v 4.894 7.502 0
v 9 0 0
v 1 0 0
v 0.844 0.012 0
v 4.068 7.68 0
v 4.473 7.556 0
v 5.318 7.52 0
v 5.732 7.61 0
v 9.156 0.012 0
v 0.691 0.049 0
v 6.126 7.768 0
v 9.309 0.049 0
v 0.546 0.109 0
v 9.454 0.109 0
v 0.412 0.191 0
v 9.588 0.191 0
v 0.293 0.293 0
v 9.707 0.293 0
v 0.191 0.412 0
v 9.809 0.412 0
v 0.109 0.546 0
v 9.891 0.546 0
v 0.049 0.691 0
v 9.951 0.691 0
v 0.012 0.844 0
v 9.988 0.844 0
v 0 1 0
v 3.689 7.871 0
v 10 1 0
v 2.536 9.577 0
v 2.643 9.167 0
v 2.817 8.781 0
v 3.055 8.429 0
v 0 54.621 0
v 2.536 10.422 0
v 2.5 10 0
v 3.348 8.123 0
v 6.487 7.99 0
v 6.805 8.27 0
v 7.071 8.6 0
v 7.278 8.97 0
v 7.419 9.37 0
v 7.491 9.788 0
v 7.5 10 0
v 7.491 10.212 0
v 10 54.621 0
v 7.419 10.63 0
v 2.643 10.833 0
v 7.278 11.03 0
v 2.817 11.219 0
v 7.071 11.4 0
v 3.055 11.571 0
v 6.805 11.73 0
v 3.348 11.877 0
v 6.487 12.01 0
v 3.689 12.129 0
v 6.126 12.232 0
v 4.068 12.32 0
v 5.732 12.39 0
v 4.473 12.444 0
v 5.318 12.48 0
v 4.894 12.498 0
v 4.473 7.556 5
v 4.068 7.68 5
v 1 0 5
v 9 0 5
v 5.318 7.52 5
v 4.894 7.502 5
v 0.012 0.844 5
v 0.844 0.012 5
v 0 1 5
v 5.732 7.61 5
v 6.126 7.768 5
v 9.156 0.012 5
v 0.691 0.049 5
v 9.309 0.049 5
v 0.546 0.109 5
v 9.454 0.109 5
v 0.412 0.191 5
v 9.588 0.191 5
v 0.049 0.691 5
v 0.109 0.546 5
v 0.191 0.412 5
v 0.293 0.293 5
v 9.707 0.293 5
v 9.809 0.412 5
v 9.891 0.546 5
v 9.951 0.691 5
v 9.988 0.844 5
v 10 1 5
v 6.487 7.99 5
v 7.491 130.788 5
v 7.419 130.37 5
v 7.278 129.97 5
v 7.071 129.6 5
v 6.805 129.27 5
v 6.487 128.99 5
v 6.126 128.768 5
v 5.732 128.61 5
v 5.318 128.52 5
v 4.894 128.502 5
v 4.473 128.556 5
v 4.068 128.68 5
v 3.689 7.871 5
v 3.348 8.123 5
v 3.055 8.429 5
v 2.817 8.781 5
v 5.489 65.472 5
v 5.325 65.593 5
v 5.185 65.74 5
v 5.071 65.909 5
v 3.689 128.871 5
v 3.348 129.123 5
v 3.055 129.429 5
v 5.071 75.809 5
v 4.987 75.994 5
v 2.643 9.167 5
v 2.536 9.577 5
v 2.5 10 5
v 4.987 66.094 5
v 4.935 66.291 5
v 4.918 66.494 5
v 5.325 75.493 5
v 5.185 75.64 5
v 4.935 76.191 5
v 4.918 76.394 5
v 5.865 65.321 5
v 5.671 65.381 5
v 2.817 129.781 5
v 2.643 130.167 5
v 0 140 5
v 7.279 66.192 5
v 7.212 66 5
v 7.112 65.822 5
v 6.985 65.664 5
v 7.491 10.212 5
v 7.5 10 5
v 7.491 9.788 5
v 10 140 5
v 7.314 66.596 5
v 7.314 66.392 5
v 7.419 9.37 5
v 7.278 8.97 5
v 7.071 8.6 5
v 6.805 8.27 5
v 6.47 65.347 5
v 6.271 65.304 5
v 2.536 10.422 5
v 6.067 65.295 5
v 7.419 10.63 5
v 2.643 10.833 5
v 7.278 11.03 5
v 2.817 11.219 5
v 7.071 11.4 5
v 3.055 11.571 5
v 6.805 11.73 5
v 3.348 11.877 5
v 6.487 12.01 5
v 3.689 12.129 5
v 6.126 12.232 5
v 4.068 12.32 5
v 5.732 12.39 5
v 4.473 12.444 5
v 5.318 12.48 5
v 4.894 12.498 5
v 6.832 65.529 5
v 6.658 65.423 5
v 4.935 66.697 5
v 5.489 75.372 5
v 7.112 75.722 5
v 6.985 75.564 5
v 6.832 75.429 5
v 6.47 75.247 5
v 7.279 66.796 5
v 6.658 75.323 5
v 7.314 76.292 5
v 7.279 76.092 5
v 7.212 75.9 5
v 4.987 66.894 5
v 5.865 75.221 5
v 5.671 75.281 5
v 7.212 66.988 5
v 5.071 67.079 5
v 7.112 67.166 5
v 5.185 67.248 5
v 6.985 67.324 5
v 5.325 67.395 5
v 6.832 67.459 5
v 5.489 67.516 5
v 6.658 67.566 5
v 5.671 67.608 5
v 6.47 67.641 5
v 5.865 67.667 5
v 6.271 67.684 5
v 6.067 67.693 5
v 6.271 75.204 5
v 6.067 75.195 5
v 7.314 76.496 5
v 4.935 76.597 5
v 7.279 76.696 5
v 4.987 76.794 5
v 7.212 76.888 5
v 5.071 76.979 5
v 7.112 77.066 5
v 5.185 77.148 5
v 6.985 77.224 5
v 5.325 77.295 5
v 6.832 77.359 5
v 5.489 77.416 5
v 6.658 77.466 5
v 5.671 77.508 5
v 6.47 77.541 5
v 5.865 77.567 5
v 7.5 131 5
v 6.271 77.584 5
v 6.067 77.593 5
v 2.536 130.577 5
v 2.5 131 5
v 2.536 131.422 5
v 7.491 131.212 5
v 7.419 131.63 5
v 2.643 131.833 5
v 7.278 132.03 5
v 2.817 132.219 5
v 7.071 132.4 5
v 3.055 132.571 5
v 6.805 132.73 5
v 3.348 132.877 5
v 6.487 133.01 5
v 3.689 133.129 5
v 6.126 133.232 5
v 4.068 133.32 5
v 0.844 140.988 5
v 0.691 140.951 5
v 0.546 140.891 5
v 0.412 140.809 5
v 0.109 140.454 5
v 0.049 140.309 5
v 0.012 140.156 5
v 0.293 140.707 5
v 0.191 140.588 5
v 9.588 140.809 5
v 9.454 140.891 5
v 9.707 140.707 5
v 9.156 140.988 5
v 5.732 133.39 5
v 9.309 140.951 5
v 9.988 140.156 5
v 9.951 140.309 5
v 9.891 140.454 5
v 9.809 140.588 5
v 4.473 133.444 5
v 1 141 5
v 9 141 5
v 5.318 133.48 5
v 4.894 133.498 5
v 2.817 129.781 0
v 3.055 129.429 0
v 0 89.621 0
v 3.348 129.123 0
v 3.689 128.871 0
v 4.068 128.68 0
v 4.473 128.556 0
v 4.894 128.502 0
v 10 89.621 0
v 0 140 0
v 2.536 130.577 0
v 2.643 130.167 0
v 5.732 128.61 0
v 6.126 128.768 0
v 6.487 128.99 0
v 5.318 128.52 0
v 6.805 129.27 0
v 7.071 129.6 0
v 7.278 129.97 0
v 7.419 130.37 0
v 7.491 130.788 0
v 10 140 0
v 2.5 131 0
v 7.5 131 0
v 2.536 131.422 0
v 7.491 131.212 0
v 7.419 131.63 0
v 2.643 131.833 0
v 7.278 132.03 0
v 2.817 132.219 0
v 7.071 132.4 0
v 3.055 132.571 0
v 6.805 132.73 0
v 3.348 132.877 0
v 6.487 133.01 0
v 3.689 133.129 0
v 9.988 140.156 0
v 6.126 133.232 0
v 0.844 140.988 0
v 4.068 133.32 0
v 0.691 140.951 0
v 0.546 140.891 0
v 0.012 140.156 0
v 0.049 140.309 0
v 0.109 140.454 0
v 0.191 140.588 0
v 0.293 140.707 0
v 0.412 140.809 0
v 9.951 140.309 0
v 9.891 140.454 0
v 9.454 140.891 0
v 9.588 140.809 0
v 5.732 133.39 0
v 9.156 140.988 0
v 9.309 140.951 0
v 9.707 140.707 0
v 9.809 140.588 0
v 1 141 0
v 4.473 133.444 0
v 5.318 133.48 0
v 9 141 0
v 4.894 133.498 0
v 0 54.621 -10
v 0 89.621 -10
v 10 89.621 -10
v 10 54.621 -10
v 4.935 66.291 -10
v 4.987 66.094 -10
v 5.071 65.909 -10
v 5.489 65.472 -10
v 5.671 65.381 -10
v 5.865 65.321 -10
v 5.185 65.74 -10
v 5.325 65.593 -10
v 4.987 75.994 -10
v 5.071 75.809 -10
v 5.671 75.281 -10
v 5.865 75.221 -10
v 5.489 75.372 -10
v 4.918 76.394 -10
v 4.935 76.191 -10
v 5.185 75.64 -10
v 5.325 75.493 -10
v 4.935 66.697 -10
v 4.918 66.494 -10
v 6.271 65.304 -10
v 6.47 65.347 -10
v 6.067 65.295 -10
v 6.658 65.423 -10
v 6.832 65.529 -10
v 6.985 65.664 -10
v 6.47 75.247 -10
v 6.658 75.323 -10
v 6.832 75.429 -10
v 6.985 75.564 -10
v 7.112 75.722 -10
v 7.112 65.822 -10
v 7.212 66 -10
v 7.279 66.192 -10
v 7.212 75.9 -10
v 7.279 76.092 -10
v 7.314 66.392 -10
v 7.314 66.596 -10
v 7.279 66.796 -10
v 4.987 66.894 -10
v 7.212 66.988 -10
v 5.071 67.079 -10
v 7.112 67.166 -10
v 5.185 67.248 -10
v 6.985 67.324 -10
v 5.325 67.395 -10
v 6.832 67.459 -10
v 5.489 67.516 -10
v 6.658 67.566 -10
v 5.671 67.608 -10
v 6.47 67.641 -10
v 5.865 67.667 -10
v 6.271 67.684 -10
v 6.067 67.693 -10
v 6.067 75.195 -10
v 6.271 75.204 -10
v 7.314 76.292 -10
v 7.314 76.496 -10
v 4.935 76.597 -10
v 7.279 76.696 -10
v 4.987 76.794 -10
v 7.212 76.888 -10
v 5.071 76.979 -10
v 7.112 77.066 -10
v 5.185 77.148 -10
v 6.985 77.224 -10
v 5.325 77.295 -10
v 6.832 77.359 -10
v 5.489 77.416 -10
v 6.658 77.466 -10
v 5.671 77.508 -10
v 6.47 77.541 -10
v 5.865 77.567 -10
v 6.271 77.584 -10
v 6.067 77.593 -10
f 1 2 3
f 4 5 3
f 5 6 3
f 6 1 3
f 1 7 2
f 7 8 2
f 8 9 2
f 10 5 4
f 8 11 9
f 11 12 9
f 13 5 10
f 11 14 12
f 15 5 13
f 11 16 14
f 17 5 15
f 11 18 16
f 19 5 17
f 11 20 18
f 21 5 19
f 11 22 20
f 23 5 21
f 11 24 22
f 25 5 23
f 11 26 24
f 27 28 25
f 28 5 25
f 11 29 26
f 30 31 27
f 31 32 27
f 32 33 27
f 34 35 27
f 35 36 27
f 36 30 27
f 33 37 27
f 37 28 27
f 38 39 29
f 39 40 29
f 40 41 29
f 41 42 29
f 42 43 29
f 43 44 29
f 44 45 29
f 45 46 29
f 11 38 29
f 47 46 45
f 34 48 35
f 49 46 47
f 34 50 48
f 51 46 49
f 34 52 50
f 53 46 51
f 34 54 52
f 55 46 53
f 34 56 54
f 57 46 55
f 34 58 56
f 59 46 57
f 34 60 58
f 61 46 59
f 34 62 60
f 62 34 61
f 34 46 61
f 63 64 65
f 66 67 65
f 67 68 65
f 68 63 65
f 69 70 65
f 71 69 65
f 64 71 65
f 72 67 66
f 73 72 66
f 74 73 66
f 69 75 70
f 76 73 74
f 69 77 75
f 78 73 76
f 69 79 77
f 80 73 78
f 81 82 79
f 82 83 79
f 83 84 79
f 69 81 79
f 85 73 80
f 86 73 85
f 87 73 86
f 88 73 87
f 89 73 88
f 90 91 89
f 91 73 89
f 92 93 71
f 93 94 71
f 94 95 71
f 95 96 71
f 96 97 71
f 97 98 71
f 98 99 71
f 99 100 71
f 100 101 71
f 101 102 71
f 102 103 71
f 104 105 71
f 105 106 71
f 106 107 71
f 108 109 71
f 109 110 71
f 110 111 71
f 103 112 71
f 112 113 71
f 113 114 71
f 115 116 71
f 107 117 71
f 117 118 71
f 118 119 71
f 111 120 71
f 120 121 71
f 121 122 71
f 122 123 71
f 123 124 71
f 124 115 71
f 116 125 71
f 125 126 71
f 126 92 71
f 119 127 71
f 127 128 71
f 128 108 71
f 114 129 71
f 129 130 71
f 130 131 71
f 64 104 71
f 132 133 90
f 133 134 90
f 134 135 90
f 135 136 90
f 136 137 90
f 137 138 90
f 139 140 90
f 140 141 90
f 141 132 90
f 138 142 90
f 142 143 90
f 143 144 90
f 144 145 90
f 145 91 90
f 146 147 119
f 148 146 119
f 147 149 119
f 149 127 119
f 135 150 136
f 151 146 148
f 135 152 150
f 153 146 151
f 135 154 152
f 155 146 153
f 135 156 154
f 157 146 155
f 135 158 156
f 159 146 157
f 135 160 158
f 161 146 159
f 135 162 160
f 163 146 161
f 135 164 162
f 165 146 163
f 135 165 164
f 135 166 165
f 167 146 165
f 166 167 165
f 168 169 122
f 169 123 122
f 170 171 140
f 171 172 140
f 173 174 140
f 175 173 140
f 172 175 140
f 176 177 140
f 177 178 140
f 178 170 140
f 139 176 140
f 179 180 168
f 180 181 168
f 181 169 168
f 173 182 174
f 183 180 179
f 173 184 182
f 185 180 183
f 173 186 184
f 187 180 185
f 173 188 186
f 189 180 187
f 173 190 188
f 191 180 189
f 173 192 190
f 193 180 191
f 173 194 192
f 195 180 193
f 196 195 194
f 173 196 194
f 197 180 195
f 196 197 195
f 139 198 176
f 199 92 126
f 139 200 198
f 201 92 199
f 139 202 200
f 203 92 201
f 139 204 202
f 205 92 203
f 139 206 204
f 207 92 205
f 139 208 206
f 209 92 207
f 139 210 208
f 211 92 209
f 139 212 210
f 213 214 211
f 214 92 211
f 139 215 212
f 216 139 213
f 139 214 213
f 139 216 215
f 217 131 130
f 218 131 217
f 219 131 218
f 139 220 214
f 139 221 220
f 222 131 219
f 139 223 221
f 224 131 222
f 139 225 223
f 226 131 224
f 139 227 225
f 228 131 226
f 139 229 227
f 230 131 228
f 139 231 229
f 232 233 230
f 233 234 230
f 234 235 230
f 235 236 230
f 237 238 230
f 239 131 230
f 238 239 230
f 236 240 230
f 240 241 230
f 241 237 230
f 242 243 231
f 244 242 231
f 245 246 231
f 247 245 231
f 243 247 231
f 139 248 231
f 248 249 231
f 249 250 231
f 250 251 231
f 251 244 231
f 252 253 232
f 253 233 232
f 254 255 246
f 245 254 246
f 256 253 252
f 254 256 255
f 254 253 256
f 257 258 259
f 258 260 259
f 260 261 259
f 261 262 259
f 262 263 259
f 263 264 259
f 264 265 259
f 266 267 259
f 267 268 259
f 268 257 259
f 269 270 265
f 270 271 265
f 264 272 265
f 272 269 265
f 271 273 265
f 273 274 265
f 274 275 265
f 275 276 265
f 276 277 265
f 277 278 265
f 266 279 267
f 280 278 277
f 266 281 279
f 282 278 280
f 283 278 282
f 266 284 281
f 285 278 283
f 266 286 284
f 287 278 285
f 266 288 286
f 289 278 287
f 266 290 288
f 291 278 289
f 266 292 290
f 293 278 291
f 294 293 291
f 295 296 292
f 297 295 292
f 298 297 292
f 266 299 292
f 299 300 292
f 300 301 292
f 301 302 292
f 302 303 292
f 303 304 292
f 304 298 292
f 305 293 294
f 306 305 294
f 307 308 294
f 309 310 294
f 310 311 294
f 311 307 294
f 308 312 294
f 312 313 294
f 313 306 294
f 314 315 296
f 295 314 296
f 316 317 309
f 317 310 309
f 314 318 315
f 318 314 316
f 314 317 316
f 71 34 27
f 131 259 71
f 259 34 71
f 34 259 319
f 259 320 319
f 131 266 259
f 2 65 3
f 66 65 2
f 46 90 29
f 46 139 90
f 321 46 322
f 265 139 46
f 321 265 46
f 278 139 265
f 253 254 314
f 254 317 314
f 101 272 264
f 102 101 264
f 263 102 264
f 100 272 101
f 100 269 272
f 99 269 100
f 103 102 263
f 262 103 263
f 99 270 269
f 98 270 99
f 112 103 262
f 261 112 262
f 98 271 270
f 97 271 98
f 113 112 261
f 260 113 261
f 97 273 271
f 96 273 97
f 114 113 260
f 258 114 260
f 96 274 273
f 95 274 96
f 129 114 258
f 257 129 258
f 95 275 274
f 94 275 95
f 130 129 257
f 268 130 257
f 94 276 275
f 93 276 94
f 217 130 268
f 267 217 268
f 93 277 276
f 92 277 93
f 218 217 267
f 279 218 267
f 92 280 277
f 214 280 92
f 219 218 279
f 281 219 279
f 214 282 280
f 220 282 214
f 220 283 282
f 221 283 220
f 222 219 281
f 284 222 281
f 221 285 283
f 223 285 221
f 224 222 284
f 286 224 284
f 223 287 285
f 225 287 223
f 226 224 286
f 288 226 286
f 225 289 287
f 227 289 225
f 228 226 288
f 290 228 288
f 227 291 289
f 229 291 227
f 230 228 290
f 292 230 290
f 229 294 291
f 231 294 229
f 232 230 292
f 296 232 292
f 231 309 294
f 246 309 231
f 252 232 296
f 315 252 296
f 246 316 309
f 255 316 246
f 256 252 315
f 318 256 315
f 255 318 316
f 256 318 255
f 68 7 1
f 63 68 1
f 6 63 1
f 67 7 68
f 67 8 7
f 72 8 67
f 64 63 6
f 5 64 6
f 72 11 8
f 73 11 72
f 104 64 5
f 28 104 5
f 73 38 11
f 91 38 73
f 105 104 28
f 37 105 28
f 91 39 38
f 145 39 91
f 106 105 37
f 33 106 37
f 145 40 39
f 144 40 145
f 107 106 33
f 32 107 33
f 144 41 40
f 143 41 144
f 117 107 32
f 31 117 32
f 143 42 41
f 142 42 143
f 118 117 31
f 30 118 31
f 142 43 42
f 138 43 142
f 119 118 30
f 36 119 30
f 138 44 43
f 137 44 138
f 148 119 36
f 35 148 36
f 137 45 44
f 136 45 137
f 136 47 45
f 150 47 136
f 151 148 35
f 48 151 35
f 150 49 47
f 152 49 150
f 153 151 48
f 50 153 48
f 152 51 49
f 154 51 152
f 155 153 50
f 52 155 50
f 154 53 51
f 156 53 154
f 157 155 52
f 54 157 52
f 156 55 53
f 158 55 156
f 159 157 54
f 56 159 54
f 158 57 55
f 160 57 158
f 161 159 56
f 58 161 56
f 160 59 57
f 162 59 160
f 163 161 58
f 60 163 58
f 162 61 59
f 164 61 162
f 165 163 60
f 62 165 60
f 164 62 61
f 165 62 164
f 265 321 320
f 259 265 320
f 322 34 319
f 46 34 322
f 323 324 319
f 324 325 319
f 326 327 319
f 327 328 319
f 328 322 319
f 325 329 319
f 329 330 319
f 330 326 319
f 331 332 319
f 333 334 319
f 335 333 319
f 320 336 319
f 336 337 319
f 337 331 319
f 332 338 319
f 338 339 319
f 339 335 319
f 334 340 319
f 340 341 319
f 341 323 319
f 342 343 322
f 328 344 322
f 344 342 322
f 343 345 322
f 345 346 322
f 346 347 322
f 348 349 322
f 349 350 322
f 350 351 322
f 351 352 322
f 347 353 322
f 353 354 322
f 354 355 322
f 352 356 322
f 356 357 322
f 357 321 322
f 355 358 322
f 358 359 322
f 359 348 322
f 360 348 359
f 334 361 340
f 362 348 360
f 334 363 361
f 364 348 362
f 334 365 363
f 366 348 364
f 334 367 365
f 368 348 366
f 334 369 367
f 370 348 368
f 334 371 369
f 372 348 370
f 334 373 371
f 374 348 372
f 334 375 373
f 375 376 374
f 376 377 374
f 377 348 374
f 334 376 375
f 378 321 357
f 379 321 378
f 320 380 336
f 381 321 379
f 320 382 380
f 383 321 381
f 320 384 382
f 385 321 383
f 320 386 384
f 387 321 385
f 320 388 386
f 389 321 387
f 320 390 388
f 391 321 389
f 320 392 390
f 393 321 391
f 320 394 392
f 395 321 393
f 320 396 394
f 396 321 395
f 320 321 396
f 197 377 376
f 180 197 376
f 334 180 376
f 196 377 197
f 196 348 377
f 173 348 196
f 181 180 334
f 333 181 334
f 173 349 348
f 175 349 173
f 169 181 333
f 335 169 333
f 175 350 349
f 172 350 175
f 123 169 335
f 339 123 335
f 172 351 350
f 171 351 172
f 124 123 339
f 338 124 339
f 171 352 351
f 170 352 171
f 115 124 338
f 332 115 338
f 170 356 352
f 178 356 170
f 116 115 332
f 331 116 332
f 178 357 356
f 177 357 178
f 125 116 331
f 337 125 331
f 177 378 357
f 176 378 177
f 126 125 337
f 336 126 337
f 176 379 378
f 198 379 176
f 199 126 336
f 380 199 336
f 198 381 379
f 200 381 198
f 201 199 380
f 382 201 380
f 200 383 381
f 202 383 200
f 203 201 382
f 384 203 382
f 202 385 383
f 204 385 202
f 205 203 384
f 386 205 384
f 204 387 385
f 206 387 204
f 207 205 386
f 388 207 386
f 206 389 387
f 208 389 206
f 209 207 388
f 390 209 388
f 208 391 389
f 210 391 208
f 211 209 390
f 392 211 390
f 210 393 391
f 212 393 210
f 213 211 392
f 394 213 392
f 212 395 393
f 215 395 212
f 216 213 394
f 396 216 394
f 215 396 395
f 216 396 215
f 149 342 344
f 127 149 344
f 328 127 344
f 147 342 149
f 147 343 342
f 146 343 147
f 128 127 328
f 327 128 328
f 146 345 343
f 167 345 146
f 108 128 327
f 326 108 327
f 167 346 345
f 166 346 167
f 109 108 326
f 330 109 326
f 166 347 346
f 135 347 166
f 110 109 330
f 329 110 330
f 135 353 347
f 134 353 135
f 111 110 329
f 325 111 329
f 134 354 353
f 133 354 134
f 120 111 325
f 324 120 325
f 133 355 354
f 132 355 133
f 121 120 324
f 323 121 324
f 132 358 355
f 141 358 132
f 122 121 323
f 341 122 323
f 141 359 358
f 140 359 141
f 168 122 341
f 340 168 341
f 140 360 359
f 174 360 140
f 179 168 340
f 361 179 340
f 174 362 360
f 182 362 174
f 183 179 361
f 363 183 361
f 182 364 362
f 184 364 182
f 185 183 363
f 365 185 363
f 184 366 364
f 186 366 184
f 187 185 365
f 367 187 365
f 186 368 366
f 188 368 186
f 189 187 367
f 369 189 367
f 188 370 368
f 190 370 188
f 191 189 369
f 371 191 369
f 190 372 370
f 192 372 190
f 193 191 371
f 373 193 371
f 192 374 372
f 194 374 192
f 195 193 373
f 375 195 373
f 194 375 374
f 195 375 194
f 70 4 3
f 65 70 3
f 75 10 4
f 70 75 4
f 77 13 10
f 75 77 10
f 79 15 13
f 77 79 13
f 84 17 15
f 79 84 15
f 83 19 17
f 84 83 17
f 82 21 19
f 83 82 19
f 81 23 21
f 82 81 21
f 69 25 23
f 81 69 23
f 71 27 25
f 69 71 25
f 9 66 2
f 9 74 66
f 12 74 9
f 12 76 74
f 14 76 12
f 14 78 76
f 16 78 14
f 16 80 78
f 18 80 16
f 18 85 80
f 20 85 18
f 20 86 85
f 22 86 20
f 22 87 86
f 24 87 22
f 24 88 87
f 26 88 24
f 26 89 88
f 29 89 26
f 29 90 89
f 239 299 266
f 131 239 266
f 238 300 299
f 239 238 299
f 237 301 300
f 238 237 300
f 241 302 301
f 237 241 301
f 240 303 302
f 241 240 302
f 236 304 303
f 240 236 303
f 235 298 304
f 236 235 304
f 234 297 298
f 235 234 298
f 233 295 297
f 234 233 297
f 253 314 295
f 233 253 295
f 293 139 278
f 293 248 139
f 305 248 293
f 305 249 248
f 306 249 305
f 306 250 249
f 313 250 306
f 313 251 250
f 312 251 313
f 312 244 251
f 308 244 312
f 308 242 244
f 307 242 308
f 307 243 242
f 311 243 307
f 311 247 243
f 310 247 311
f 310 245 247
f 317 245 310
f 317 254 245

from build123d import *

# Parameters (mm, degrees)
SKETCH1_W           = 10
SKETCH1_H           = 141
SKETCH1_R           = 2.5
BOSS_EXTRUDE1_DEPTH = 5
SKETCH3_W           = 10
SKETCH3_H           = 35
BOSS_EXTRUDE3_DEPTH = 10
SKETCH4_R           = 1.2
CUT_EXTRUDE1_DEPTH  = 15
FILLET1_R           = 1


with BuildPart() as part:
    # Sketch1 → Boss-Extrude1 (new body)
    with BuildSketch(Plane.XY):
        with Locations((5, 70.5)):
            Rectangle(SKETCH1_W, SKETCH1_H)
        with Locations((5, 131)):
            Circle(SKETCH1_R, mode=Mode.SUBTRACT)
        with Locations((5, 10)):
            Circle(SKETCH1_R, mode=Mode.SUBTRACT)
    extrude(amount=BOSS_EXTRUDE1_DEPTH)

    # Sketch3 → Boss-Extrude3 (add)
    with BuildSketch(Plane(origin=(0, 0, 0), x_dir=(-1, 0, 0), z_dir=(0, 0, -1))):
        with Locations((-5, 72.121118493)):
            Rectangle(SKETCH3_W, SKETCH3_H)
    extrude(amount=BOSS_EXTRUDE3_DEPTH)

    # Sketch4 → Cut-Extrude1 (cut)
    with BuildSketch(Plane(origin=(0, 0, -10), x_dir=(-1, 0, 0), z_dir=(0, 0, -1))):
        with Locations((-6.118193933, 66.494048402)):
            Circle(SKETCH4_R)
        with Locations((-6.118193933, 76.394048402)):
            Circle(SKETCH4_R)
    extrude(amount=-CUT_EXTRUDE1_DEPTH, mode=Mode.SUBTRACT)

    # Fillet1
    fillet1_edges = [part.edges().sort_by_distance(p)[0] for p in [
        (0, 141, 2.5),
        (10, 141, 2.5),
        (10, 0, 2.5),
        (0, 0, 2.5),
    ]]
    fillet(fillet1_edges, radius=FILLET1_R)


solid = part.part
